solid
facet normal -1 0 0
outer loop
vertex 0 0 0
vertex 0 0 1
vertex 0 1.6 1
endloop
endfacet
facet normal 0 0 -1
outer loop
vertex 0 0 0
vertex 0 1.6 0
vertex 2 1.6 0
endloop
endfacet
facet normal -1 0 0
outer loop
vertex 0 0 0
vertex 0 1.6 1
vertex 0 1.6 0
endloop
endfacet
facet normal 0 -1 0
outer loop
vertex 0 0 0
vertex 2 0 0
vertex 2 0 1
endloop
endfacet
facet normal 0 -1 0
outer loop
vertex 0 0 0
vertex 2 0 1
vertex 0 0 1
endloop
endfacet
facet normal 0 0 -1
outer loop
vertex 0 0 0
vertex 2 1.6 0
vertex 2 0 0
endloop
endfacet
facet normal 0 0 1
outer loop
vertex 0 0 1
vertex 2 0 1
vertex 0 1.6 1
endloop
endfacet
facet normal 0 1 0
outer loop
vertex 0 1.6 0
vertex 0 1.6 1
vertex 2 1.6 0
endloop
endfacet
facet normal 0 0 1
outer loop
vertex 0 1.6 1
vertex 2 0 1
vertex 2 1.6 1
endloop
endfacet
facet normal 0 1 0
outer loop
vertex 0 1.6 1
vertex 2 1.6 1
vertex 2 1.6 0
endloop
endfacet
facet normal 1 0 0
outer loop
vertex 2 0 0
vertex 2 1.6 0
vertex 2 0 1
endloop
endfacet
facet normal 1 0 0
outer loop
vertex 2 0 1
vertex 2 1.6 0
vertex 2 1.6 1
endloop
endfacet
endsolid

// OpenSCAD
/* Warning, this is a very basic generator with a lot of approximation 
input data : [VFLGA, ATA, 2.0x1.6mm, 6, , A, C04-01201A]
generated by com.zoubworld.electronics.cad.model3d.Basic
Date : Sun Feb 15 10:50:49 CET 2026
*/

//body
color("black")
translate([0,0,0])
cube([2.0,1.6,1.0], center=false);
